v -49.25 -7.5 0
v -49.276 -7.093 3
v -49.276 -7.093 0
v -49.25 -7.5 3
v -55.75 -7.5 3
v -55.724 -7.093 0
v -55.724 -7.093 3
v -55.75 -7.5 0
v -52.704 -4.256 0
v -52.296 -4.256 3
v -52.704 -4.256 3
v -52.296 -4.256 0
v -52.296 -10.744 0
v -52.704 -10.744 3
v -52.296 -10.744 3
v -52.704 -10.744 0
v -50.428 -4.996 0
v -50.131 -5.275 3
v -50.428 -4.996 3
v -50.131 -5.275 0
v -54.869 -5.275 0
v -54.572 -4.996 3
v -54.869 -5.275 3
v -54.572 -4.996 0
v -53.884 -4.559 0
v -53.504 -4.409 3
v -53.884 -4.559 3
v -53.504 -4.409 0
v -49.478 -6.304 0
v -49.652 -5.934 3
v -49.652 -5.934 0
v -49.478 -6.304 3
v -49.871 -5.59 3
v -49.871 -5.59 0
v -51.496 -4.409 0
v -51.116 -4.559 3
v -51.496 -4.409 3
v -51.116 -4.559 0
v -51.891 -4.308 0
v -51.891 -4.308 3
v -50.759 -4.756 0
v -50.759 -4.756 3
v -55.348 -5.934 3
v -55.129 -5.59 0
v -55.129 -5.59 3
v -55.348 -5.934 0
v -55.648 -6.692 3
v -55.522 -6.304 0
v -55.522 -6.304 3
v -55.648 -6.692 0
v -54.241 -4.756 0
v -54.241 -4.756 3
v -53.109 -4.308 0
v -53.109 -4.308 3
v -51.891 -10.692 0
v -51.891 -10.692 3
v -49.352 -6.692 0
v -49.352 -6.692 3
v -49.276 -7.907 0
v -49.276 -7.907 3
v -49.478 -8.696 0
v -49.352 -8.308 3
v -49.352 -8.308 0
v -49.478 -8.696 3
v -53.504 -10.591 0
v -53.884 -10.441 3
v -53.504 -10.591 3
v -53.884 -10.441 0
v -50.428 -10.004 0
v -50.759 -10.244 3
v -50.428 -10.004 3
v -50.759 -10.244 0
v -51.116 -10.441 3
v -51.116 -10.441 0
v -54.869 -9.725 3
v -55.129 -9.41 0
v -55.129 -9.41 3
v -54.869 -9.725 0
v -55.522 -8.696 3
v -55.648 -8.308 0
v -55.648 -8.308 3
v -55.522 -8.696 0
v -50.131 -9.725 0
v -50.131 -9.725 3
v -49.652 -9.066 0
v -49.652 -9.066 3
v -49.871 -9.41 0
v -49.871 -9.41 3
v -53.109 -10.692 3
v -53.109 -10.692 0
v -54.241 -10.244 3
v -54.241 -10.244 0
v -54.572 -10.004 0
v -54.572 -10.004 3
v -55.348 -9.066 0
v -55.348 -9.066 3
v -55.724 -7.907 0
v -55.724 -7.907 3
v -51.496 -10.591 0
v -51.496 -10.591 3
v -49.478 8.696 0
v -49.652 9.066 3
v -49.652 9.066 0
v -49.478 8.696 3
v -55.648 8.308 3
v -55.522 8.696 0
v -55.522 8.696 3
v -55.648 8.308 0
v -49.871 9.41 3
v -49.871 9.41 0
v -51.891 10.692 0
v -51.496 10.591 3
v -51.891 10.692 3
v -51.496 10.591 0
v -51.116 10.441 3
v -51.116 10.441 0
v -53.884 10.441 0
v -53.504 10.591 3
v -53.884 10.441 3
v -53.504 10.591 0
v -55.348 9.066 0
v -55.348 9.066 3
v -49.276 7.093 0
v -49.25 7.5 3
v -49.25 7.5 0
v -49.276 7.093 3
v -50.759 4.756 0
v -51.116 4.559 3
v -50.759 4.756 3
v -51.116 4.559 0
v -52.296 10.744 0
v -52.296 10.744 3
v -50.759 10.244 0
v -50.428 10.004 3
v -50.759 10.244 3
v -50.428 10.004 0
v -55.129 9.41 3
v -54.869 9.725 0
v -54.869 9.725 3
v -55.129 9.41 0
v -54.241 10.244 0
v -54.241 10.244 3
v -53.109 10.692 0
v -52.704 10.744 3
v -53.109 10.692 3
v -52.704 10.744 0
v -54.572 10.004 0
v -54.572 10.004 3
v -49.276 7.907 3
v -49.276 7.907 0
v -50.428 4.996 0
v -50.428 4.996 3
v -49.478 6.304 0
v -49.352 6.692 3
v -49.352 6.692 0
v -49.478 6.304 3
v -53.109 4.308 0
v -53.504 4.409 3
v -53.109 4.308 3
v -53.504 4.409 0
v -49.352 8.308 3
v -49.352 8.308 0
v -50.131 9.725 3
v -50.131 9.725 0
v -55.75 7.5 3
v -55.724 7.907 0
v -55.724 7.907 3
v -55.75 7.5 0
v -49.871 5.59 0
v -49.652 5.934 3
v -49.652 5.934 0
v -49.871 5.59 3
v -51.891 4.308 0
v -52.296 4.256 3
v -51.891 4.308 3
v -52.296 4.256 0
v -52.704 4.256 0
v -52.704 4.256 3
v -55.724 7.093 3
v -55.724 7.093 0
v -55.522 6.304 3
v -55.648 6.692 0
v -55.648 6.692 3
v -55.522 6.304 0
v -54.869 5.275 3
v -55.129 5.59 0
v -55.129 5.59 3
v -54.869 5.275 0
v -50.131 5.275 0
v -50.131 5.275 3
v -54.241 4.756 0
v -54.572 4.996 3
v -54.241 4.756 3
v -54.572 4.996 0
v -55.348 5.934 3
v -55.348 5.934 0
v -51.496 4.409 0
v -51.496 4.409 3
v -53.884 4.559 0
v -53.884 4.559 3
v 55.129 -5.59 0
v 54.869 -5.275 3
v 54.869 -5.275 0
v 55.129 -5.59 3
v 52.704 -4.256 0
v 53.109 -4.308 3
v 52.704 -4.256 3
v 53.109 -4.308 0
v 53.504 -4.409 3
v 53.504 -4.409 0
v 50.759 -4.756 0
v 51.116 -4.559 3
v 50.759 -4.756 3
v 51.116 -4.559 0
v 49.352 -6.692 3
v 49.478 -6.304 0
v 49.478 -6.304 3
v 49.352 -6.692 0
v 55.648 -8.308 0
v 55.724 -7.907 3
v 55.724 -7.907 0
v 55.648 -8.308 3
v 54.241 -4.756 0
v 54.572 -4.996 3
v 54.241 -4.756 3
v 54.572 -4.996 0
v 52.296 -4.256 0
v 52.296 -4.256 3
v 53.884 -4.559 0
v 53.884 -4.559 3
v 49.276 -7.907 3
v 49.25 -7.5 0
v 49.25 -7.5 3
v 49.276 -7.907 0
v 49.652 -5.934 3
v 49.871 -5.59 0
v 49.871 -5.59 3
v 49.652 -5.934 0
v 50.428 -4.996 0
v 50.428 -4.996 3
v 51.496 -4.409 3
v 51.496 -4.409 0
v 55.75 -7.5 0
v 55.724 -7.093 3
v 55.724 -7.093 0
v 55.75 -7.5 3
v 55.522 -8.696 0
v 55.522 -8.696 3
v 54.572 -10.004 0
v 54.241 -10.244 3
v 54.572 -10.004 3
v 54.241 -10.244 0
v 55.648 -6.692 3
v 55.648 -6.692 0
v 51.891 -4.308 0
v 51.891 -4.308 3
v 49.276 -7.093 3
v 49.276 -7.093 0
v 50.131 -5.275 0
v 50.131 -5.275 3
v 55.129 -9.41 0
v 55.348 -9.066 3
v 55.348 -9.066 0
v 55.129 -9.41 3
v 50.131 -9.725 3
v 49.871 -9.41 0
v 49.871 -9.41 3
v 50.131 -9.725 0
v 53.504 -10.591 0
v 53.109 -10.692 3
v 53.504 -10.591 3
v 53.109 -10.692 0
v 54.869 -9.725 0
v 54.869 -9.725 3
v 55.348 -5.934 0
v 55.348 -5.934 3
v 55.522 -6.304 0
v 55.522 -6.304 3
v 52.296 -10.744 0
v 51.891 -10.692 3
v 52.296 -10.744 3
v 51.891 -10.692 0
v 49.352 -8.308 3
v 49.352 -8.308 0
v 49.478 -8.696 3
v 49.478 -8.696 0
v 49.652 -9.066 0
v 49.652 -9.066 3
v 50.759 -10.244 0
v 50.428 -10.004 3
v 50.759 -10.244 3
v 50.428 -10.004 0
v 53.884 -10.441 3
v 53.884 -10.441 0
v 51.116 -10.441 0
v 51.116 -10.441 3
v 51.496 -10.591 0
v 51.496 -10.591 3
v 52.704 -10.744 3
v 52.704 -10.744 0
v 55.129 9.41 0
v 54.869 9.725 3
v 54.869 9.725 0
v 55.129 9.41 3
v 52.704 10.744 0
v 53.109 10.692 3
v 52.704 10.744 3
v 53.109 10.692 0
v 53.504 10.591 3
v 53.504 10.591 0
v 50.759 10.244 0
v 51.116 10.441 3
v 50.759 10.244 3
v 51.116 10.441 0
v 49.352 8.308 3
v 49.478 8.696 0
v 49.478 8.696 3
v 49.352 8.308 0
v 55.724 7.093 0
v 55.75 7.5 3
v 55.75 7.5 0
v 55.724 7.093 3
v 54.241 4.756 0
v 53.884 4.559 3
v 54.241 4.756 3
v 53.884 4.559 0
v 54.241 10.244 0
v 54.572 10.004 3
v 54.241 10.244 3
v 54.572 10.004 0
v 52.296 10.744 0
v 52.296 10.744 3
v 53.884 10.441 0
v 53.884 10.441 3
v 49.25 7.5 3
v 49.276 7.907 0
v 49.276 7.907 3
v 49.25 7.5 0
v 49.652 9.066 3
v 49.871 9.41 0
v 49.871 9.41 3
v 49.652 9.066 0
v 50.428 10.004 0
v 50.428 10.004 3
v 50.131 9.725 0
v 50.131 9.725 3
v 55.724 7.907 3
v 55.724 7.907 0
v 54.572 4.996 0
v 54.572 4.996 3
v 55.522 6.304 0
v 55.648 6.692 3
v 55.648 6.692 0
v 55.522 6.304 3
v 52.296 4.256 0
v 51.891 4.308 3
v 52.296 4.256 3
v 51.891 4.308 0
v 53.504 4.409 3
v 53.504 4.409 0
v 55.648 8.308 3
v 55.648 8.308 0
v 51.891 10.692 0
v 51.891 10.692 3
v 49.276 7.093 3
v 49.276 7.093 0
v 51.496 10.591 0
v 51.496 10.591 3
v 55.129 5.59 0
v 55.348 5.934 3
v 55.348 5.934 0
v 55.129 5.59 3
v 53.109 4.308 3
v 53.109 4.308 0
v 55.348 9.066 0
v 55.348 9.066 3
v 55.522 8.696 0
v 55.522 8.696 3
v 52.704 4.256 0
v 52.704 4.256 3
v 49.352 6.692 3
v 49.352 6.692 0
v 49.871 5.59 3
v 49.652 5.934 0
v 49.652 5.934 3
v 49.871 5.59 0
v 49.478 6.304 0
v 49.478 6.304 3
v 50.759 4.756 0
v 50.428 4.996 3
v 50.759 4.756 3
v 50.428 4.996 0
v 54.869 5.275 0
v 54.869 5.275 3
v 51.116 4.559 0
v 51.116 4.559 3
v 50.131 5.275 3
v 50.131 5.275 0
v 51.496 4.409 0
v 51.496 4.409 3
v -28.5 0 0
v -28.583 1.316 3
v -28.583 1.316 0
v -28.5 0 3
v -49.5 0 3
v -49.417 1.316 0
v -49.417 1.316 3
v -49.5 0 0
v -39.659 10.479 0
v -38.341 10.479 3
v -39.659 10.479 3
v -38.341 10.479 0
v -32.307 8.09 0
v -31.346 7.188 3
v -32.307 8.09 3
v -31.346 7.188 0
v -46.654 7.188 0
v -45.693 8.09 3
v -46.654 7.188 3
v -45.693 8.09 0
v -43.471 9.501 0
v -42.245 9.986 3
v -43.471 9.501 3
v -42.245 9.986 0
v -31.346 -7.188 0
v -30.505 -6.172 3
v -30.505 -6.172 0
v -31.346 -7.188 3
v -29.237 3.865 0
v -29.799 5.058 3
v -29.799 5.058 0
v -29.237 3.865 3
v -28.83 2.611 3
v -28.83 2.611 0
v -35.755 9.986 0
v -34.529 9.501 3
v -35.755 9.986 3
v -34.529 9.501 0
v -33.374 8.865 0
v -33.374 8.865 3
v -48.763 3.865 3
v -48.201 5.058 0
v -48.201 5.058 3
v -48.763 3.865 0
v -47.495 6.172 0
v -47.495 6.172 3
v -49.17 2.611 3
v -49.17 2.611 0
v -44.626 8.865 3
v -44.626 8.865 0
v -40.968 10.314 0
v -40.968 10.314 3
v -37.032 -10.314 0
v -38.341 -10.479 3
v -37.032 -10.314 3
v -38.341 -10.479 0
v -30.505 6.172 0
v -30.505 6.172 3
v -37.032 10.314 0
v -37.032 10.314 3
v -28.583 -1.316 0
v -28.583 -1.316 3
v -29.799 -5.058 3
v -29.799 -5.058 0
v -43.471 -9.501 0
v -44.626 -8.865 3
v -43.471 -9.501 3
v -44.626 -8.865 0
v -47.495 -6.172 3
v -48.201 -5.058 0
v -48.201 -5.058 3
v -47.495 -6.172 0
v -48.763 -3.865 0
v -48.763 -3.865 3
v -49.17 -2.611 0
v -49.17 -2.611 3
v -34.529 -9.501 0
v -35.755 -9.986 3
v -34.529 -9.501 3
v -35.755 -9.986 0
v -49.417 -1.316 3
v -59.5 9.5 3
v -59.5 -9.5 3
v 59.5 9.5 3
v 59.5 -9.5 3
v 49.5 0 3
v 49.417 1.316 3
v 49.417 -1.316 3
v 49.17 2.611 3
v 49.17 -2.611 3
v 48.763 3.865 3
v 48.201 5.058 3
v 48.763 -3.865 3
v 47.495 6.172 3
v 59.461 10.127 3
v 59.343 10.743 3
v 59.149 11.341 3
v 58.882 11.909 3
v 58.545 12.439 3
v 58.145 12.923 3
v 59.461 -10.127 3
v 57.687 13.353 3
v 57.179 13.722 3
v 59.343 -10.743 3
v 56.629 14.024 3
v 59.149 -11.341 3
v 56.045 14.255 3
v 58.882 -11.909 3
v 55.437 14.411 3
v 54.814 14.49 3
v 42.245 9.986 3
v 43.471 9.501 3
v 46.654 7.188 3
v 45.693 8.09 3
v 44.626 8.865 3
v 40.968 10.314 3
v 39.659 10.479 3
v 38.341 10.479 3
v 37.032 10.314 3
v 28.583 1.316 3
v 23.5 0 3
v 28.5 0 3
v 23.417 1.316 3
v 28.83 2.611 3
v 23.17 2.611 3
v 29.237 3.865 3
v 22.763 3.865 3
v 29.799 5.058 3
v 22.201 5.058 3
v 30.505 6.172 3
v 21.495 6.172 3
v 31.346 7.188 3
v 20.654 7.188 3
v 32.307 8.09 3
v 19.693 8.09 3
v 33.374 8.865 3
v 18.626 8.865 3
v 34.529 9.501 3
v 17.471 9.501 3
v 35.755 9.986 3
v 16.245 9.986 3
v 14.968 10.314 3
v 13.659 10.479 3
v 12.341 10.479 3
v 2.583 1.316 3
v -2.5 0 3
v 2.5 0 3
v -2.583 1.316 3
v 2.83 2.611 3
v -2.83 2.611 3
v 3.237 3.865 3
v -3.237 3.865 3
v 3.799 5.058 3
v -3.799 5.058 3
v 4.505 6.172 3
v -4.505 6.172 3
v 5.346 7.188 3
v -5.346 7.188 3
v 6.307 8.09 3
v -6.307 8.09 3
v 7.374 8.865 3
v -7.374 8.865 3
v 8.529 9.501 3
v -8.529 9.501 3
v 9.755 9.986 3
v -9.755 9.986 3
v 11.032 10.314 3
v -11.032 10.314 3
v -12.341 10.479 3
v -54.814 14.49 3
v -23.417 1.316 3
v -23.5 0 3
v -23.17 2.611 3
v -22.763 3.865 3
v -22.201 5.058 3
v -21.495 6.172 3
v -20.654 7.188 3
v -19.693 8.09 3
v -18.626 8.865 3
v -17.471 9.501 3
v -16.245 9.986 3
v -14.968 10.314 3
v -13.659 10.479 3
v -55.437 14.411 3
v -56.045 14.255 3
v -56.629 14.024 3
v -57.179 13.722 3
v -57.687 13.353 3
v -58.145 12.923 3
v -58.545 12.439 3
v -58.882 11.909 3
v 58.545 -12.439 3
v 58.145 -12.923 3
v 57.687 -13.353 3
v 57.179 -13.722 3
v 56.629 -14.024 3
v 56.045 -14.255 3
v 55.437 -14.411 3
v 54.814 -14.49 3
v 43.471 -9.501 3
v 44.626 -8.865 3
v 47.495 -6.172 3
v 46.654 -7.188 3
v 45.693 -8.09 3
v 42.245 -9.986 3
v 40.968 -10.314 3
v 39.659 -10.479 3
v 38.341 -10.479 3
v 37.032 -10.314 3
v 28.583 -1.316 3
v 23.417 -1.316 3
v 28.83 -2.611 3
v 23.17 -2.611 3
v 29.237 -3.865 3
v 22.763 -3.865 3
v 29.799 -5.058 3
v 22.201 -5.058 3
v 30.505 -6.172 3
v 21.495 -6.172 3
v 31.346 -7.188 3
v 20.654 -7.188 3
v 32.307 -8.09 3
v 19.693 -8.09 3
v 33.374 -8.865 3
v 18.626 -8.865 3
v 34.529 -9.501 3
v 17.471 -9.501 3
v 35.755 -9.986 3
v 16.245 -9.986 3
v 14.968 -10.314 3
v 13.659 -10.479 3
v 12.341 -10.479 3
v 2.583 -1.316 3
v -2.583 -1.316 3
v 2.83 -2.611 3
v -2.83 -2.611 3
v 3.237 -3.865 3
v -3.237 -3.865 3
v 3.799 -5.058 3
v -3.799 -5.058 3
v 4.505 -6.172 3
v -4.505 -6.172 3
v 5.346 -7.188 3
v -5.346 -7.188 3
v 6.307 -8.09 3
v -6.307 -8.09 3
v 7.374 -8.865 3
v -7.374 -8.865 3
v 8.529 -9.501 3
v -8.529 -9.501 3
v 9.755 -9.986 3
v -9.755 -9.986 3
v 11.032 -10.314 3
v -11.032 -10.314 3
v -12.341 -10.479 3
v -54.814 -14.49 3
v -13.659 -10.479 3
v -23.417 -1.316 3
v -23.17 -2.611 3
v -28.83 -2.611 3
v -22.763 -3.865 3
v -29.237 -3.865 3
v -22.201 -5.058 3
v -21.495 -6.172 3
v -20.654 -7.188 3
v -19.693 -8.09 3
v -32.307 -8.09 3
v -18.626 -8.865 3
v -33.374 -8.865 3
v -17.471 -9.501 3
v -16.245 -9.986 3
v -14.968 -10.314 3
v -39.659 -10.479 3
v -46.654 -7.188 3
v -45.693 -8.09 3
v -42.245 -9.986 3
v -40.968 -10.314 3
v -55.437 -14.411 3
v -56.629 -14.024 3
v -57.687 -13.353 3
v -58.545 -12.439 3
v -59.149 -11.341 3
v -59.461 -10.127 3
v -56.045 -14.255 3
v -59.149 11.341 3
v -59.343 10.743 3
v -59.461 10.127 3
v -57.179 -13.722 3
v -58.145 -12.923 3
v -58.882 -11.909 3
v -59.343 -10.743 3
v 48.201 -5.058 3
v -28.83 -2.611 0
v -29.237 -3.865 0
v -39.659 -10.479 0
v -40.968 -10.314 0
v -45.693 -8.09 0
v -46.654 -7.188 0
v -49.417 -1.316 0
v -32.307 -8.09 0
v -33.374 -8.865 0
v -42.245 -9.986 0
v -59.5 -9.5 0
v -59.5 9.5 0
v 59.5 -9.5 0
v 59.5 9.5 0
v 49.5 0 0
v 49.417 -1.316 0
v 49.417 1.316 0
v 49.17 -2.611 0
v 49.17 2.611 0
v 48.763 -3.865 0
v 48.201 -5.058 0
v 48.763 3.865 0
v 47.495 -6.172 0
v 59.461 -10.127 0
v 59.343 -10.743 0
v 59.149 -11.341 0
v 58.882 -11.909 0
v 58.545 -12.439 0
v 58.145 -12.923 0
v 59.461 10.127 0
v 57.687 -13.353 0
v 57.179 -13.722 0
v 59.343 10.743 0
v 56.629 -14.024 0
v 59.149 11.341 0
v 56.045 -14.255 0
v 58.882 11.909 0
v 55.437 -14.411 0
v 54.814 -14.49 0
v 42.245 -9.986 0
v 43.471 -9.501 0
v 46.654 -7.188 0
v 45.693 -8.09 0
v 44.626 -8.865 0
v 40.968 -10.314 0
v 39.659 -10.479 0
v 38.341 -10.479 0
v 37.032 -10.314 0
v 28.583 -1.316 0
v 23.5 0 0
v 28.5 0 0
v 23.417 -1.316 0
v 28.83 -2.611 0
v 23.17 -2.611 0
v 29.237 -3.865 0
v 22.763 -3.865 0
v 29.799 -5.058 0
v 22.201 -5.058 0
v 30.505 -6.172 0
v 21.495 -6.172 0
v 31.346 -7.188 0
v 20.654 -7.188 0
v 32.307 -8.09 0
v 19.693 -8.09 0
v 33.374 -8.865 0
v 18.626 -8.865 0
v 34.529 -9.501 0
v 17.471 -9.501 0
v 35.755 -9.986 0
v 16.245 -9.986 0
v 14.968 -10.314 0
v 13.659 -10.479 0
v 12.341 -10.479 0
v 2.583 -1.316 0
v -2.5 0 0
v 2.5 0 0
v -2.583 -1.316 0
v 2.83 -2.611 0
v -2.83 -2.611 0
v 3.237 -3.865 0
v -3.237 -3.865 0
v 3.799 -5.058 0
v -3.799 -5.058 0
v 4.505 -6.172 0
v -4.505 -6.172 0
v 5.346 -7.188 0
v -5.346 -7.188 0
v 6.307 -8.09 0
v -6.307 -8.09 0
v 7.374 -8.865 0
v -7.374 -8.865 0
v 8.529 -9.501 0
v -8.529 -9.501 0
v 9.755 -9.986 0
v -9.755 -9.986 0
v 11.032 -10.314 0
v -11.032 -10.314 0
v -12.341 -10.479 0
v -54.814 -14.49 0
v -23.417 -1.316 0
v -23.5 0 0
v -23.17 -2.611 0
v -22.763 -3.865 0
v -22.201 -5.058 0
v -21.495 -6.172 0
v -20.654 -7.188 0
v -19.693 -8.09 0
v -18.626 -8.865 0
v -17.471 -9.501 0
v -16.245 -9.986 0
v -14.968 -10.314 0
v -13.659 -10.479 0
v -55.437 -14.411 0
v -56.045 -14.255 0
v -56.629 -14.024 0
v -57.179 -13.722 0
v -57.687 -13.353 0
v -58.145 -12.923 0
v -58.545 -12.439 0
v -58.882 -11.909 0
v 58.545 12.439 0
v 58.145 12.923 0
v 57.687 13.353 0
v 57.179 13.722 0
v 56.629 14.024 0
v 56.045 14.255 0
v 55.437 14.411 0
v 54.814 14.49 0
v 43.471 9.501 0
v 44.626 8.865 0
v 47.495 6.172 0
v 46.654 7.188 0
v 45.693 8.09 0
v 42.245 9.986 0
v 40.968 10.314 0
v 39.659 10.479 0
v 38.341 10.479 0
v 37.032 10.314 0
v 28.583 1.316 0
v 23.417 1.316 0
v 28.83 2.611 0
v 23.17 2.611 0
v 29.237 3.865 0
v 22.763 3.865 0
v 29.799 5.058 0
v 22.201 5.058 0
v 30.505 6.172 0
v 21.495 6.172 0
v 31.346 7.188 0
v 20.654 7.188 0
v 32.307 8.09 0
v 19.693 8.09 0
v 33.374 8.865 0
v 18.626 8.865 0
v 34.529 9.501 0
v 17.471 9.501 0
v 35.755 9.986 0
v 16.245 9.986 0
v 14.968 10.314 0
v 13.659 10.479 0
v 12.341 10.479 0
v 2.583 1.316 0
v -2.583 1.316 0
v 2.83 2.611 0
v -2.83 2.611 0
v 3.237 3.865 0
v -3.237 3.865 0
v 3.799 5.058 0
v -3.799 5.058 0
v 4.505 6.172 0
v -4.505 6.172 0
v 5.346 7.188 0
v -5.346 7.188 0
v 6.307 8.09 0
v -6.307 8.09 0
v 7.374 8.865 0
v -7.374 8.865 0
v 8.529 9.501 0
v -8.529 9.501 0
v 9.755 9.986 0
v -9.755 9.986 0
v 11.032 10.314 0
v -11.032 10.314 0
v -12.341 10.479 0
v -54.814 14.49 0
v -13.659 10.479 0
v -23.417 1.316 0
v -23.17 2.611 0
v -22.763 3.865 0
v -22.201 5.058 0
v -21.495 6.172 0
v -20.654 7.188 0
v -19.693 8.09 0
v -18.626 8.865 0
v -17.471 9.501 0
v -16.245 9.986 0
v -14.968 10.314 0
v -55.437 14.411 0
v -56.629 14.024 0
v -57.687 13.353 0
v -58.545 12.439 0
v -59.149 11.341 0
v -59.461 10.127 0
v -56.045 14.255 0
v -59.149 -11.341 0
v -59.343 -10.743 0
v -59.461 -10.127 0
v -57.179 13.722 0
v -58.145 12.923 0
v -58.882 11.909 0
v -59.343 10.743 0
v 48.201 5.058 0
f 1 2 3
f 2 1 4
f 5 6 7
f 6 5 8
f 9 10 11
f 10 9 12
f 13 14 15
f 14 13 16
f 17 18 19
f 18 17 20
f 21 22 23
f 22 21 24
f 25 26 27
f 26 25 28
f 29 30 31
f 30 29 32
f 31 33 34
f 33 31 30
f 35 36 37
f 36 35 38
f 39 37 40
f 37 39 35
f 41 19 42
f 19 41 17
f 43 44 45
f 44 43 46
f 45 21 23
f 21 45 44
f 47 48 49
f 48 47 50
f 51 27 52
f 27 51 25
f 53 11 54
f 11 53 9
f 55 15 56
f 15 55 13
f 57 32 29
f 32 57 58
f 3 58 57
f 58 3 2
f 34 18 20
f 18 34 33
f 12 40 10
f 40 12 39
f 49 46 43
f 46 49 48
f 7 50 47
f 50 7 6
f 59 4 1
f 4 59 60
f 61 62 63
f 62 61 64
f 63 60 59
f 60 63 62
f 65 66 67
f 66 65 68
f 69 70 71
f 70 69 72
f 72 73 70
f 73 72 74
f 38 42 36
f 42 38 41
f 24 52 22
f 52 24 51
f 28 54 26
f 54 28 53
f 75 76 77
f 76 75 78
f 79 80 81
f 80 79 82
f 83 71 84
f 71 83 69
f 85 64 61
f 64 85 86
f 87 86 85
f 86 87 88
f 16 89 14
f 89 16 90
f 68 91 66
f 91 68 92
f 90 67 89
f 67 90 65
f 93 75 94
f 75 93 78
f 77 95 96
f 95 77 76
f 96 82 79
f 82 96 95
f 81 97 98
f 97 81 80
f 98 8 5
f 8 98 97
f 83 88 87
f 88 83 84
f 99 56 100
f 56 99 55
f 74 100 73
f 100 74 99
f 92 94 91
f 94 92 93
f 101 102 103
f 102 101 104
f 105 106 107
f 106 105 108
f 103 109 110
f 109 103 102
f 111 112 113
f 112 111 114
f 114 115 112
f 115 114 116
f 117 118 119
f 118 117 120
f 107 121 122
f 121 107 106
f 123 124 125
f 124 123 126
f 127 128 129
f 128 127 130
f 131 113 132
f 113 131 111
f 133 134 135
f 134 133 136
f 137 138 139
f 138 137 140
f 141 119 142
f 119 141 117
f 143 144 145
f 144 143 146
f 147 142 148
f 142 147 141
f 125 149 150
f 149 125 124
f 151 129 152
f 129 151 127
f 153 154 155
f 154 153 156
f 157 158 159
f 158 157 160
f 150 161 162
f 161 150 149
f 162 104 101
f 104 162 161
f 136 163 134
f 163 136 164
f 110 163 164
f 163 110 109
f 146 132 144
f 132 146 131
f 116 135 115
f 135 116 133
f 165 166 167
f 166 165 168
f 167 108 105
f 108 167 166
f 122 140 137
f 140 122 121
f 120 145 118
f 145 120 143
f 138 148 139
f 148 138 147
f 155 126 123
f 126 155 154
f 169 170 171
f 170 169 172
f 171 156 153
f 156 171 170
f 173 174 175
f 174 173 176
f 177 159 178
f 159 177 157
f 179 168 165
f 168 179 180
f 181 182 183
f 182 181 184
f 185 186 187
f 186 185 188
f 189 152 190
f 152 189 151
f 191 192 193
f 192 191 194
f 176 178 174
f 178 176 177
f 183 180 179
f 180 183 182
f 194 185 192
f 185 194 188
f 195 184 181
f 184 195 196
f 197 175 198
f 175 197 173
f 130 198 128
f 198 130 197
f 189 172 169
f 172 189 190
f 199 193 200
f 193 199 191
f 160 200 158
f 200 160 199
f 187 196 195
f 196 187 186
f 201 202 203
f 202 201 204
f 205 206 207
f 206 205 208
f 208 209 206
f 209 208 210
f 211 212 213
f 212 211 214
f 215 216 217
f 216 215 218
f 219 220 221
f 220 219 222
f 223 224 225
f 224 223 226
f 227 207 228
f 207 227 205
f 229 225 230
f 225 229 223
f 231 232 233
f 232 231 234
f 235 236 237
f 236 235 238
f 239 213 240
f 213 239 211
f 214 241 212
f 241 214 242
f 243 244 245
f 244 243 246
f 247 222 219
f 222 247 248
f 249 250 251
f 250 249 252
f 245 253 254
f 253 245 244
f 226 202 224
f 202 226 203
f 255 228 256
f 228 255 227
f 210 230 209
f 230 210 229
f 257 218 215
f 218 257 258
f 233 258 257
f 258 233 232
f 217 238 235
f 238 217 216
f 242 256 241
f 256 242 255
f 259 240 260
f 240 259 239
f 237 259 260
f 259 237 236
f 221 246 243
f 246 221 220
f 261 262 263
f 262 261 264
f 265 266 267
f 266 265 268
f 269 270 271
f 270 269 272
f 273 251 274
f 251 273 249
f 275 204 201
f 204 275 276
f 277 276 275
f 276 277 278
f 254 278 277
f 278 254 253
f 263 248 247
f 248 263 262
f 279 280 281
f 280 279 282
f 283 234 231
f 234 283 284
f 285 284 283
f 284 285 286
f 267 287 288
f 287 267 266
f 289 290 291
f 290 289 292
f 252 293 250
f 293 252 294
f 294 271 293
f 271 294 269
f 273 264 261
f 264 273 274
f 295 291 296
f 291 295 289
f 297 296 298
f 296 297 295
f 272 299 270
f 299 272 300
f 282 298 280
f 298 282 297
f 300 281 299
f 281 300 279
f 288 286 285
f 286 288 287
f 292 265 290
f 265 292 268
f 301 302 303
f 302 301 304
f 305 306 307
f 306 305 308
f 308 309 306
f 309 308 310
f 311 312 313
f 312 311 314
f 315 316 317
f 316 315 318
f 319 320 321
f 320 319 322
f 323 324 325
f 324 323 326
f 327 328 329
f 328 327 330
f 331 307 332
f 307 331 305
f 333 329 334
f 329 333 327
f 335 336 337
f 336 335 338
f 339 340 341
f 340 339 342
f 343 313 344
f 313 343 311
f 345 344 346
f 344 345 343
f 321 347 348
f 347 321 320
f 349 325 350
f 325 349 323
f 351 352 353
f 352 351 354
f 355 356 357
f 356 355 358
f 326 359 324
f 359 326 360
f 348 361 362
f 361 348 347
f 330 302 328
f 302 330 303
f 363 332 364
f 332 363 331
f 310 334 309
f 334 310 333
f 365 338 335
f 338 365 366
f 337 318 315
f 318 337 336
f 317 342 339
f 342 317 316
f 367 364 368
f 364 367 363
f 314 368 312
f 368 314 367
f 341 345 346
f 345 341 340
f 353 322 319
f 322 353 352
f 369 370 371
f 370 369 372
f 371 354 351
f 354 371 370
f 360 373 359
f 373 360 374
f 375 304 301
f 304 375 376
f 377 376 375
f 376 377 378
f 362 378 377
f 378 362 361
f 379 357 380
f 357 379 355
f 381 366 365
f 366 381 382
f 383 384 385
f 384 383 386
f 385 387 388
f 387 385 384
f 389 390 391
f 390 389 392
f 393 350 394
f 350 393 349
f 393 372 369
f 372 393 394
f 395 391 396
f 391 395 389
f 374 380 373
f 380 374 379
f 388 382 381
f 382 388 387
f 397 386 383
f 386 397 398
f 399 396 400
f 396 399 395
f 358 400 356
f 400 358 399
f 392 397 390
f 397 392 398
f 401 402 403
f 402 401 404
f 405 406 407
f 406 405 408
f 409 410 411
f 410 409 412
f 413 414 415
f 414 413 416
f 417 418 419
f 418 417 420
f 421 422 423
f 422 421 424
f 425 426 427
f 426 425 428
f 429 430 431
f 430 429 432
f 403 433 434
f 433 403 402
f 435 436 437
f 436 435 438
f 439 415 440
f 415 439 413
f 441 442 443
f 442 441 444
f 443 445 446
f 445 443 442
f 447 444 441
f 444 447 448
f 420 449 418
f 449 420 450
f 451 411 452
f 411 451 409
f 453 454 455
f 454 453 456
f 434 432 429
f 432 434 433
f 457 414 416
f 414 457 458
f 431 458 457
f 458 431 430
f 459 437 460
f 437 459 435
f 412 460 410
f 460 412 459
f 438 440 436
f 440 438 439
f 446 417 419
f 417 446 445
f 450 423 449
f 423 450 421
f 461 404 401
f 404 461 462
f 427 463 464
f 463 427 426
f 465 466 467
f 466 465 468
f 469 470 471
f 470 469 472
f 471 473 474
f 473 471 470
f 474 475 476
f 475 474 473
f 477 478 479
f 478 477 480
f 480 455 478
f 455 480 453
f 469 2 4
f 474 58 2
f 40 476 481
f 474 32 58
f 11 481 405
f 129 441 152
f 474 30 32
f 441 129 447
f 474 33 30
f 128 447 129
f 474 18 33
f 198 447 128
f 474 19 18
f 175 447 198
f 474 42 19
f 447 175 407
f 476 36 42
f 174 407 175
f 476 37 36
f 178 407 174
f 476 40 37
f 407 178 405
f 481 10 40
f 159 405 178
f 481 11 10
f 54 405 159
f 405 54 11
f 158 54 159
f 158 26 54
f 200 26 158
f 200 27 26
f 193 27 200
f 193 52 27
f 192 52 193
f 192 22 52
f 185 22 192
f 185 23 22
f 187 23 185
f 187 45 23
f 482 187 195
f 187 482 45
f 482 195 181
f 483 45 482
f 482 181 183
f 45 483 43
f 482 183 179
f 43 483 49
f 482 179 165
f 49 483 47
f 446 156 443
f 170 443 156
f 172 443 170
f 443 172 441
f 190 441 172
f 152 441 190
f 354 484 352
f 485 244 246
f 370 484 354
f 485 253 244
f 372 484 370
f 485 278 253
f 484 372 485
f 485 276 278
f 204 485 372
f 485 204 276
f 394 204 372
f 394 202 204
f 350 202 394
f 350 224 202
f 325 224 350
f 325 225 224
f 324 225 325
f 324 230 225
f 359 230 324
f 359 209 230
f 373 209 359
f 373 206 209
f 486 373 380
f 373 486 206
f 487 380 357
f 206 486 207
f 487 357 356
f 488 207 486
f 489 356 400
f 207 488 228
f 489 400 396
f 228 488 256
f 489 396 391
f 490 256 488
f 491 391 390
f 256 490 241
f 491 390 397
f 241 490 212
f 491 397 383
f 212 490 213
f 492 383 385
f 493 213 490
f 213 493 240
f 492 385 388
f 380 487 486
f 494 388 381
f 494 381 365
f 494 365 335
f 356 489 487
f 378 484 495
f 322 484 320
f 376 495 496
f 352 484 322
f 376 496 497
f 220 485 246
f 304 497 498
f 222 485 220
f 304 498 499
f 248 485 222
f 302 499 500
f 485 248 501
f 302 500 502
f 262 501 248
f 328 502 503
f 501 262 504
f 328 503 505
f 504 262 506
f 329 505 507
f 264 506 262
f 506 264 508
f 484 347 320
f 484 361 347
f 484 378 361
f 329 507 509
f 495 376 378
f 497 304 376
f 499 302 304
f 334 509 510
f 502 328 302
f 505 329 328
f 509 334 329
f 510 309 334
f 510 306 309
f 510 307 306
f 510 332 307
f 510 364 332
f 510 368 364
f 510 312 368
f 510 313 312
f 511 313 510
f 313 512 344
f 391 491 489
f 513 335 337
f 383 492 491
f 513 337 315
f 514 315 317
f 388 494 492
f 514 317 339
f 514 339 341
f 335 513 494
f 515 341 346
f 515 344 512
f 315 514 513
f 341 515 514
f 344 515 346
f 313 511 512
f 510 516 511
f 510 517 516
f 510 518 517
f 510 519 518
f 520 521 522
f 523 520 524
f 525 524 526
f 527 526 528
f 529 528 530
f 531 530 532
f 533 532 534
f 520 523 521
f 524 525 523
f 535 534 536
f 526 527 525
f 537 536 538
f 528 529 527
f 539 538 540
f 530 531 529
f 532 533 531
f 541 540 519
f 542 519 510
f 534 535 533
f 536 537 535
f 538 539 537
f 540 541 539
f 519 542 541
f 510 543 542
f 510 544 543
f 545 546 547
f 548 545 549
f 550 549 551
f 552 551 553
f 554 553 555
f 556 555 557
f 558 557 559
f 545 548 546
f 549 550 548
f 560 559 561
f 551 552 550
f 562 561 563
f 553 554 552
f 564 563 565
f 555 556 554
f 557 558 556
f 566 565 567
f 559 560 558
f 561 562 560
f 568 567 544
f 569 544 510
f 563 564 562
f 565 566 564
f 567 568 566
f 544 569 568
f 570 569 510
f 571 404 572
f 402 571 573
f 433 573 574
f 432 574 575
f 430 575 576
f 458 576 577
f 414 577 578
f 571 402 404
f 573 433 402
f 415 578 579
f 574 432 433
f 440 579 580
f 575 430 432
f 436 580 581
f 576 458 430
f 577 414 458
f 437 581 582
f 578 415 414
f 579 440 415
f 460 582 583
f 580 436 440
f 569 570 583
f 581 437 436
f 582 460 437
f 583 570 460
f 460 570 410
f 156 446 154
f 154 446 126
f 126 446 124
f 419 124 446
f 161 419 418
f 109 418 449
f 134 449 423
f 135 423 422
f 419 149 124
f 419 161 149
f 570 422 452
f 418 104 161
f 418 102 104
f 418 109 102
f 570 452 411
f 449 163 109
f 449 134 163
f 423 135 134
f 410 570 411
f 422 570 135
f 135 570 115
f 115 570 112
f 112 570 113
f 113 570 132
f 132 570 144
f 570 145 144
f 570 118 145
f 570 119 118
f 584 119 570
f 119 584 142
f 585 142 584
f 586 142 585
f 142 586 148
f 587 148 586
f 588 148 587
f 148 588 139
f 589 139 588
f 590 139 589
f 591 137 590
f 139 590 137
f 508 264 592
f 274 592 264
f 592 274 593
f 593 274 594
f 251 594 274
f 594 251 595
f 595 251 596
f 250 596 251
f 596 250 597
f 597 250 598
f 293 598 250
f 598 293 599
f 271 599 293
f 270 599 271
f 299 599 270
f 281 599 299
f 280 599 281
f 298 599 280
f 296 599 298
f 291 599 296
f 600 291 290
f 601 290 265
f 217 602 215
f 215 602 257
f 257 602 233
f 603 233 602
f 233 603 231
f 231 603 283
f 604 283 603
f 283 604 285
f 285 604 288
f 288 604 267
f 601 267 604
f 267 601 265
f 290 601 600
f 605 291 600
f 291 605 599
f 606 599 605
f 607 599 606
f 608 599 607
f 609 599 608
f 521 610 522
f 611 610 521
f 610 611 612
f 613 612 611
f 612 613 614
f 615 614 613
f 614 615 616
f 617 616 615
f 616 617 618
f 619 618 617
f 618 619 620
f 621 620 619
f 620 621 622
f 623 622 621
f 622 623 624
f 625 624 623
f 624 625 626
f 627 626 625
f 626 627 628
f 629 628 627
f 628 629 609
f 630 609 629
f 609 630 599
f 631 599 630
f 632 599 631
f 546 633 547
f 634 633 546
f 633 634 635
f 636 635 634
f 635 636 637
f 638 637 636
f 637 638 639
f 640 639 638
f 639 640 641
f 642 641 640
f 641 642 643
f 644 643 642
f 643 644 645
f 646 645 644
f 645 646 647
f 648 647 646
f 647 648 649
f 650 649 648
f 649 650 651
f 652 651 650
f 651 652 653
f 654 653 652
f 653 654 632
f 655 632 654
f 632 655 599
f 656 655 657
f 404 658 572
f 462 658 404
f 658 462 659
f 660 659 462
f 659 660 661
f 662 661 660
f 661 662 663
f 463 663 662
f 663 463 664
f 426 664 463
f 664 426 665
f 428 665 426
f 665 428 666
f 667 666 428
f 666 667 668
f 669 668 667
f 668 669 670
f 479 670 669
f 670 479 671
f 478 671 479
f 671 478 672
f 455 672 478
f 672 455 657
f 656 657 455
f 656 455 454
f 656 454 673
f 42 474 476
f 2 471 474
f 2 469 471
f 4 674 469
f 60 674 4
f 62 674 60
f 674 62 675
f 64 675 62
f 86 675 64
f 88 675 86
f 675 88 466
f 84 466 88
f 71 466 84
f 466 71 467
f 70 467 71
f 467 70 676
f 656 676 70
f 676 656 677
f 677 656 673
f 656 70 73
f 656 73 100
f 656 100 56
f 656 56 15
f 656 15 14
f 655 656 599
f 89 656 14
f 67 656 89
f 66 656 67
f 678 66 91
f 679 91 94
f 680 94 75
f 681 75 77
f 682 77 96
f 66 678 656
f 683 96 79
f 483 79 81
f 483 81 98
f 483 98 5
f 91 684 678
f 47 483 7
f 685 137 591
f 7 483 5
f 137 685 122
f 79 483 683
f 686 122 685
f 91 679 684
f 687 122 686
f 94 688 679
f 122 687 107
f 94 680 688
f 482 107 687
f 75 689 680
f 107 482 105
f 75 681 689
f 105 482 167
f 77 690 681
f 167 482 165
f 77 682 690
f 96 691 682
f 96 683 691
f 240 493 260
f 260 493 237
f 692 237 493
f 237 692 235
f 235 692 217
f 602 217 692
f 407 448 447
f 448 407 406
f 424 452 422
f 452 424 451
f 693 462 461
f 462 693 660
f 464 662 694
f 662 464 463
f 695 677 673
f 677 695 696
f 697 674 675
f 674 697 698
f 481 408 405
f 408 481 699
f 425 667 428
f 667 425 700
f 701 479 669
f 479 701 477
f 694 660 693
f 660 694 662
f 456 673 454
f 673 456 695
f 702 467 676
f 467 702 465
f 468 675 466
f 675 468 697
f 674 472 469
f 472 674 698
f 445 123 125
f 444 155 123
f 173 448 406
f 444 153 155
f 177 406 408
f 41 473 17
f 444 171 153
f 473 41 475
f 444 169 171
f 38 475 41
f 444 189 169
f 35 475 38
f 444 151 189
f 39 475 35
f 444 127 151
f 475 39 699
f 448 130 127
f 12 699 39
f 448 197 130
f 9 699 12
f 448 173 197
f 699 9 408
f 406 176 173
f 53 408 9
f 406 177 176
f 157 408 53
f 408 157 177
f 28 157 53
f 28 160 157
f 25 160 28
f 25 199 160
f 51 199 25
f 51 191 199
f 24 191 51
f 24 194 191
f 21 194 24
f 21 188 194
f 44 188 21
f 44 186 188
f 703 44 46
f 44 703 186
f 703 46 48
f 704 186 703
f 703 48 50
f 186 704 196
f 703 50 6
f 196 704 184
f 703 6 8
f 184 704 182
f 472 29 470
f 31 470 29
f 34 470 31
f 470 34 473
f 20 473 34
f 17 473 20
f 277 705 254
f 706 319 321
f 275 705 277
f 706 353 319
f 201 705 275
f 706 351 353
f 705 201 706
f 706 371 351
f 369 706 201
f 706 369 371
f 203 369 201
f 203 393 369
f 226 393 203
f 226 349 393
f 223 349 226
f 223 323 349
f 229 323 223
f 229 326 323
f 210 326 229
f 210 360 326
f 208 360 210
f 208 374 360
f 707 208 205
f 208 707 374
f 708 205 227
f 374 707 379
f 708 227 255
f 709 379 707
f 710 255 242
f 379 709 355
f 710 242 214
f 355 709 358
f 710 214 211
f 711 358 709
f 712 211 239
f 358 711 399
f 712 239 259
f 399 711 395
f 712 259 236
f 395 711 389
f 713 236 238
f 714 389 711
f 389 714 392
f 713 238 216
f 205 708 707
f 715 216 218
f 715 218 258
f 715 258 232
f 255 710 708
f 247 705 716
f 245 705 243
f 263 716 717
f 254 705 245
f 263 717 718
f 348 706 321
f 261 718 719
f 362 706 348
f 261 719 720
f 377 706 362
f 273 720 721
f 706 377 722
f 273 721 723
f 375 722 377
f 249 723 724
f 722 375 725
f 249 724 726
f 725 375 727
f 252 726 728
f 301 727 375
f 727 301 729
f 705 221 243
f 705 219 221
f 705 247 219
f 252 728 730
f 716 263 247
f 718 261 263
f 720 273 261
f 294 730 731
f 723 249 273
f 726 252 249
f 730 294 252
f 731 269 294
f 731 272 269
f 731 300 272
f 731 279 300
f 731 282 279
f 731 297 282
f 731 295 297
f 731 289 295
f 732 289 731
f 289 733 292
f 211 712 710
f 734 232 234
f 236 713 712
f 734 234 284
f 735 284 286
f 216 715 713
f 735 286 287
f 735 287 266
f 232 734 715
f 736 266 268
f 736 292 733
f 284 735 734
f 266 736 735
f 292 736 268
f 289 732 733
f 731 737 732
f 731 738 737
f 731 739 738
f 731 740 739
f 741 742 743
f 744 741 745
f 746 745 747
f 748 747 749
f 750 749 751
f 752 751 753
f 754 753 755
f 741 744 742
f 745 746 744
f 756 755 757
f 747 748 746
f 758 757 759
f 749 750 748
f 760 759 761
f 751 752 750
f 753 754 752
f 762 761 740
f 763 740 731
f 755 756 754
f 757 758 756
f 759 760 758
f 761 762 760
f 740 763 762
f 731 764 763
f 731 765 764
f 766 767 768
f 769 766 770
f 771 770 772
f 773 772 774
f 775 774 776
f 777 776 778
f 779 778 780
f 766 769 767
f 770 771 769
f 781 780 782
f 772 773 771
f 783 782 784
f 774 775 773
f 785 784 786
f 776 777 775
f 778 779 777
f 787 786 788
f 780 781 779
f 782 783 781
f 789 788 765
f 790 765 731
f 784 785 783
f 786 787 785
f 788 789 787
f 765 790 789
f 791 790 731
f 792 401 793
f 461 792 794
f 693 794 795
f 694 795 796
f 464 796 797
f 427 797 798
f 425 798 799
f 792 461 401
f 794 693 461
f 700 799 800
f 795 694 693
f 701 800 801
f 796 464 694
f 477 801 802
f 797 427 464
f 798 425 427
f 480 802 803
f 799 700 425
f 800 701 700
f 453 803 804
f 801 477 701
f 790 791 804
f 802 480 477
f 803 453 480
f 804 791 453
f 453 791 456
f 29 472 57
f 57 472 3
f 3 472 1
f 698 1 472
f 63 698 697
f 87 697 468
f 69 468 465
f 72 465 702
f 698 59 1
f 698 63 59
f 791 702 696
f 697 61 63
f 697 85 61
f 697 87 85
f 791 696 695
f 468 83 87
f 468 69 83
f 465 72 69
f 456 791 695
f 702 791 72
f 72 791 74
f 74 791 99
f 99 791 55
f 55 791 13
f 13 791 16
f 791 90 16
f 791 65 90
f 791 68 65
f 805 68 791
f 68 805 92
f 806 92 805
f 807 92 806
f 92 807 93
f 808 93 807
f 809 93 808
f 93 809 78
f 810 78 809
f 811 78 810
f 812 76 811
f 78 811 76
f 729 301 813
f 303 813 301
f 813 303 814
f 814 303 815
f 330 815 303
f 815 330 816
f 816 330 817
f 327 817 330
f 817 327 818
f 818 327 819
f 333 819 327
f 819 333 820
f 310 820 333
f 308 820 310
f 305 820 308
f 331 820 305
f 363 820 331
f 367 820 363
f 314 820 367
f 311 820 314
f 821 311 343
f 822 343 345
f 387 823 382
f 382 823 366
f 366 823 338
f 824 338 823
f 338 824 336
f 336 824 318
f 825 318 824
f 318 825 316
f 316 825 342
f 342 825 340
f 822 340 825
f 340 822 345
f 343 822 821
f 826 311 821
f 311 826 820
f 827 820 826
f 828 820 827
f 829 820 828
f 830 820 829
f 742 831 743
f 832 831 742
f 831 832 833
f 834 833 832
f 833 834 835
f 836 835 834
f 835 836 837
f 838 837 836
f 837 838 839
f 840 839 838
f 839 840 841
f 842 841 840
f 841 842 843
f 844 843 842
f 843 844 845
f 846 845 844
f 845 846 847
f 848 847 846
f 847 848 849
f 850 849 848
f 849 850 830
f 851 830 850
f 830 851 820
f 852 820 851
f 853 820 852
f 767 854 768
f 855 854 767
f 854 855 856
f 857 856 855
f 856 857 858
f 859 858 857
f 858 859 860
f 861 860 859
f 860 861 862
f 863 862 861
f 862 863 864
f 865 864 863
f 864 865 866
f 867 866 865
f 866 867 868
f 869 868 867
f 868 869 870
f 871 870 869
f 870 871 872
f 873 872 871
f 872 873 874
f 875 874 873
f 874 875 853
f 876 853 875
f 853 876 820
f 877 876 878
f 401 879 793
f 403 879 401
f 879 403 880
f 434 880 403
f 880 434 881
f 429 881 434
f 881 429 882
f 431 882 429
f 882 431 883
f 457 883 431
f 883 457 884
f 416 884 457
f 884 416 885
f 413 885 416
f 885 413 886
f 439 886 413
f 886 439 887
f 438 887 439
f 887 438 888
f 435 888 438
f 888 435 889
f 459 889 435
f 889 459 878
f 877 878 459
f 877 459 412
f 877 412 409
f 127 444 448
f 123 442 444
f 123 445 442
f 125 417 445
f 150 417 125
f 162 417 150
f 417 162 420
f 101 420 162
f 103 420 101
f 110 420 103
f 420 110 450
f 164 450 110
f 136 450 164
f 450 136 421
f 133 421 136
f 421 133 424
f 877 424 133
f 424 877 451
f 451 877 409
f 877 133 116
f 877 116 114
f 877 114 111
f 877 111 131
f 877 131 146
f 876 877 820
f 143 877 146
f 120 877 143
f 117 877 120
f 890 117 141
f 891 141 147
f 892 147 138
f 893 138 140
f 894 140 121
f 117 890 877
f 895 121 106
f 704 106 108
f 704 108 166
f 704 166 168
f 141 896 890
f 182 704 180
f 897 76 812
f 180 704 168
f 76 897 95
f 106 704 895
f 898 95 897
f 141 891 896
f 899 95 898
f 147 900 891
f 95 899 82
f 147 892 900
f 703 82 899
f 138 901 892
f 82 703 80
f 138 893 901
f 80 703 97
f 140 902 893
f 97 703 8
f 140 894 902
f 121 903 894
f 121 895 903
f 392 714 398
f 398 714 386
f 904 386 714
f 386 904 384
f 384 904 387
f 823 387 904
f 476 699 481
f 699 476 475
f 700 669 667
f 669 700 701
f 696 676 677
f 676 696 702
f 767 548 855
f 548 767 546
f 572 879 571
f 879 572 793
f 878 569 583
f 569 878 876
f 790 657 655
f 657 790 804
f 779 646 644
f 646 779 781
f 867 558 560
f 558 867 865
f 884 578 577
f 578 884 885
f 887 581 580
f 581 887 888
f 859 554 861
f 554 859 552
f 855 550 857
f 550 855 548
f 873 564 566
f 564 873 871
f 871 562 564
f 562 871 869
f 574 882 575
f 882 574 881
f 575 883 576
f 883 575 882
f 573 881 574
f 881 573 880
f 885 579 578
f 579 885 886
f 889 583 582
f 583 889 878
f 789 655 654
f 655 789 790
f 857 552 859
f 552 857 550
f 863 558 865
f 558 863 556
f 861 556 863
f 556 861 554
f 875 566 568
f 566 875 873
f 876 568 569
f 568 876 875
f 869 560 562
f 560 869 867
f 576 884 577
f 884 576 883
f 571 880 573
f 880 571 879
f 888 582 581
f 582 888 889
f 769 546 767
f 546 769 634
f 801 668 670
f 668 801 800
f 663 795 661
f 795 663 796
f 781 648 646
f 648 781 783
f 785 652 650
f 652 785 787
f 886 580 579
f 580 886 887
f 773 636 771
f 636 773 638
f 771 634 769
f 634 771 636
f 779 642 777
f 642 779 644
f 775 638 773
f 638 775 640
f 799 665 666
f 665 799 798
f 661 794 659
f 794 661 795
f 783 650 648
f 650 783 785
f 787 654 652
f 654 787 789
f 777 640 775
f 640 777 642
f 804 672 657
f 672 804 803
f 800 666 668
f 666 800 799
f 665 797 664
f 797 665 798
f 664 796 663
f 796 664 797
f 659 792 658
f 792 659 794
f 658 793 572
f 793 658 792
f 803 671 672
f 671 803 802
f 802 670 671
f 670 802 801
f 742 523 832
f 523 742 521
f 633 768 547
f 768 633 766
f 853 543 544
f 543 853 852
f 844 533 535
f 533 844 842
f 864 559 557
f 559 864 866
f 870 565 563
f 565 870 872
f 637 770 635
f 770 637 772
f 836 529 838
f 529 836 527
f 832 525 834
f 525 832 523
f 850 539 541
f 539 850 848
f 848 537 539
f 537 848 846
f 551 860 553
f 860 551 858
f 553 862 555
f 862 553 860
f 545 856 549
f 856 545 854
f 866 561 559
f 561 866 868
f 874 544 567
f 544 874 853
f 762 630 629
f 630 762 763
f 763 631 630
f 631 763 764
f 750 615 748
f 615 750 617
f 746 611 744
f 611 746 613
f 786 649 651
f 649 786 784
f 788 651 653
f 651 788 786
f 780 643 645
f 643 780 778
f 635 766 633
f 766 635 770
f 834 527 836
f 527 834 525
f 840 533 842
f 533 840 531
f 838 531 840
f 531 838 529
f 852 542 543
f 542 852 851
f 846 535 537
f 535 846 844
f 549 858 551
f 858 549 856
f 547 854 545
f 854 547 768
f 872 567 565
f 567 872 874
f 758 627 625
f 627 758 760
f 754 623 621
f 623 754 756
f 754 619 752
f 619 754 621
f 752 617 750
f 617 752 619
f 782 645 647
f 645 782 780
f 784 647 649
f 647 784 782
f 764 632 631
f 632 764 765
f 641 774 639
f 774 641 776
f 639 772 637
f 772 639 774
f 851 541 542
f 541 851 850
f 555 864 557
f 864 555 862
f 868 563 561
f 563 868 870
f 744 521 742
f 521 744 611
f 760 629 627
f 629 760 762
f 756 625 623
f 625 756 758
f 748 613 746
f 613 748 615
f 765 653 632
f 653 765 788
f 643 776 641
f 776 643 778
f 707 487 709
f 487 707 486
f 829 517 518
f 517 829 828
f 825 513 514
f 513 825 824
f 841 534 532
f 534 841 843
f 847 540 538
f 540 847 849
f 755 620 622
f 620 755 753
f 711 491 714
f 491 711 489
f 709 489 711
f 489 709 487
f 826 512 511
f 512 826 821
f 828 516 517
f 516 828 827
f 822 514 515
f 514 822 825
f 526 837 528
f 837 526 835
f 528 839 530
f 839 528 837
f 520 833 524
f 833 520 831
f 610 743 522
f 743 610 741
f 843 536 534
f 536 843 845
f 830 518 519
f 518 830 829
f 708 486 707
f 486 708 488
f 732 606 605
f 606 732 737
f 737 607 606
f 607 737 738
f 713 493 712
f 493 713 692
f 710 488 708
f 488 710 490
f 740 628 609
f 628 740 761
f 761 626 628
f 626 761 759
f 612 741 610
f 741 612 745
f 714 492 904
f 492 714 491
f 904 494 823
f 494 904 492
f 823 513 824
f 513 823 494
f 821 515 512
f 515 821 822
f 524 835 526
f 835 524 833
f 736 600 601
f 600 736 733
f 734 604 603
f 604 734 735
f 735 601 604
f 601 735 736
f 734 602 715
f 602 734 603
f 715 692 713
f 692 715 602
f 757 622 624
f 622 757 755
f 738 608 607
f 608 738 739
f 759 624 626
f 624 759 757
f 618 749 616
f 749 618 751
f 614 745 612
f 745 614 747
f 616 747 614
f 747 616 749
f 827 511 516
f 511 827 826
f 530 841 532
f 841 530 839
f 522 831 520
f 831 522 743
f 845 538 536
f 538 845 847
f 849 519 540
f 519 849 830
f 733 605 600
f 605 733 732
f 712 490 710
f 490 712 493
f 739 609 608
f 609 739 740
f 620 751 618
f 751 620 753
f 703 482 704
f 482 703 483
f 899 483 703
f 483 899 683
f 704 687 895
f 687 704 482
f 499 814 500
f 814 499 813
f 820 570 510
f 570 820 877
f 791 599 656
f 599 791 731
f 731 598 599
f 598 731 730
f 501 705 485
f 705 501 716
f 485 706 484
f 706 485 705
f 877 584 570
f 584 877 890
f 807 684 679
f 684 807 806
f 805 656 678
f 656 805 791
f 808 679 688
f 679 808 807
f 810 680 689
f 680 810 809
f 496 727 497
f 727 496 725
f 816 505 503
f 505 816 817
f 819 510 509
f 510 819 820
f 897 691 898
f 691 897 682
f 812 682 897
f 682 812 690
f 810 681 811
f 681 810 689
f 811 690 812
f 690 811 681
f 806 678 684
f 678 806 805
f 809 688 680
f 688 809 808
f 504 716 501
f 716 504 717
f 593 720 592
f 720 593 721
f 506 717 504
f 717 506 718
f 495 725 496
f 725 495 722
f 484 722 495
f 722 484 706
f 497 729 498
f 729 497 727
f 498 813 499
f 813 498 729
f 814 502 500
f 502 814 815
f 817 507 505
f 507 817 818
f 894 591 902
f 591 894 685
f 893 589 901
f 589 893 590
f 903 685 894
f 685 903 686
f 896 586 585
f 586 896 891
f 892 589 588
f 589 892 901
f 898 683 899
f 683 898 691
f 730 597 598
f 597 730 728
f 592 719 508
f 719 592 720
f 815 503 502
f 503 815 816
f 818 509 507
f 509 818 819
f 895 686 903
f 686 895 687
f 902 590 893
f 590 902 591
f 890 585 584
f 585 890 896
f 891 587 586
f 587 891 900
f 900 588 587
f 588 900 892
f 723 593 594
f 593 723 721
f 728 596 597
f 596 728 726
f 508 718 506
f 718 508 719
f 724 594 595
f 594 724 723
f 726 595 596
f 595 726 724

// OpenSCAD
$fn = 50;


difference() {
	union() {
		hull() {
			translate(v = [-54.5000000000, 9.5000000000, 0]) {
				cylinder(h = 3, r = 5);
			}
			translate(v = [54.5000000000, 9.5000000000, 0]) {
				cylinder(h = 3, r = 5);
			}
			translate(v = [-54.5000000000, -9.5000000000, 0]) {
				cylinder(h = 3, r = 5);
			}
			translate(v = [54.5000000000, -9.5000000000, 0]) {
				cylinder(h = 3, r = 5);
			}
		}
	}
	union() {
		#translate(v = [-52.5000000000, -7.5000000000, -100.0000000000]) {
			cylinder(h = 200, r = 3.2500000000);
		}
		#translate(v = [-52.5000000000, 7.5000000000, -100.0000000000]) {
			cylinder(h = 200, r = 3.2500000000);
		}
		#translate(v = [52.5000000000, -7.5000000000, -100.0000000000]) {
			cylinder(h = 200, r = 3.2500000000);
		}
		#translate(v = [52.5000000000, 7.5000000000, -100.0000000000]) {
			cylinder(h = 200, r = 3.2500000000);
		}
		#translate(v = [-39.0000000000, 0, 0]) {
			cylinder(h = 3, r = 10.5000000000);
		}
		#translate(v = [-13.0000000000, 0, 0]) {
			cylinder(h = 3, r = 10.5000000000);
		}
		#translate(v = [13.0000000000, 0, 0]) {
			cylinder(h = 3, r = 10.5000000000);
		}
		#translate(v = [39.0000000000, 0, 0]) {
			cylinder(h = 3, r = 10.5000000000);
		}
	}
}
